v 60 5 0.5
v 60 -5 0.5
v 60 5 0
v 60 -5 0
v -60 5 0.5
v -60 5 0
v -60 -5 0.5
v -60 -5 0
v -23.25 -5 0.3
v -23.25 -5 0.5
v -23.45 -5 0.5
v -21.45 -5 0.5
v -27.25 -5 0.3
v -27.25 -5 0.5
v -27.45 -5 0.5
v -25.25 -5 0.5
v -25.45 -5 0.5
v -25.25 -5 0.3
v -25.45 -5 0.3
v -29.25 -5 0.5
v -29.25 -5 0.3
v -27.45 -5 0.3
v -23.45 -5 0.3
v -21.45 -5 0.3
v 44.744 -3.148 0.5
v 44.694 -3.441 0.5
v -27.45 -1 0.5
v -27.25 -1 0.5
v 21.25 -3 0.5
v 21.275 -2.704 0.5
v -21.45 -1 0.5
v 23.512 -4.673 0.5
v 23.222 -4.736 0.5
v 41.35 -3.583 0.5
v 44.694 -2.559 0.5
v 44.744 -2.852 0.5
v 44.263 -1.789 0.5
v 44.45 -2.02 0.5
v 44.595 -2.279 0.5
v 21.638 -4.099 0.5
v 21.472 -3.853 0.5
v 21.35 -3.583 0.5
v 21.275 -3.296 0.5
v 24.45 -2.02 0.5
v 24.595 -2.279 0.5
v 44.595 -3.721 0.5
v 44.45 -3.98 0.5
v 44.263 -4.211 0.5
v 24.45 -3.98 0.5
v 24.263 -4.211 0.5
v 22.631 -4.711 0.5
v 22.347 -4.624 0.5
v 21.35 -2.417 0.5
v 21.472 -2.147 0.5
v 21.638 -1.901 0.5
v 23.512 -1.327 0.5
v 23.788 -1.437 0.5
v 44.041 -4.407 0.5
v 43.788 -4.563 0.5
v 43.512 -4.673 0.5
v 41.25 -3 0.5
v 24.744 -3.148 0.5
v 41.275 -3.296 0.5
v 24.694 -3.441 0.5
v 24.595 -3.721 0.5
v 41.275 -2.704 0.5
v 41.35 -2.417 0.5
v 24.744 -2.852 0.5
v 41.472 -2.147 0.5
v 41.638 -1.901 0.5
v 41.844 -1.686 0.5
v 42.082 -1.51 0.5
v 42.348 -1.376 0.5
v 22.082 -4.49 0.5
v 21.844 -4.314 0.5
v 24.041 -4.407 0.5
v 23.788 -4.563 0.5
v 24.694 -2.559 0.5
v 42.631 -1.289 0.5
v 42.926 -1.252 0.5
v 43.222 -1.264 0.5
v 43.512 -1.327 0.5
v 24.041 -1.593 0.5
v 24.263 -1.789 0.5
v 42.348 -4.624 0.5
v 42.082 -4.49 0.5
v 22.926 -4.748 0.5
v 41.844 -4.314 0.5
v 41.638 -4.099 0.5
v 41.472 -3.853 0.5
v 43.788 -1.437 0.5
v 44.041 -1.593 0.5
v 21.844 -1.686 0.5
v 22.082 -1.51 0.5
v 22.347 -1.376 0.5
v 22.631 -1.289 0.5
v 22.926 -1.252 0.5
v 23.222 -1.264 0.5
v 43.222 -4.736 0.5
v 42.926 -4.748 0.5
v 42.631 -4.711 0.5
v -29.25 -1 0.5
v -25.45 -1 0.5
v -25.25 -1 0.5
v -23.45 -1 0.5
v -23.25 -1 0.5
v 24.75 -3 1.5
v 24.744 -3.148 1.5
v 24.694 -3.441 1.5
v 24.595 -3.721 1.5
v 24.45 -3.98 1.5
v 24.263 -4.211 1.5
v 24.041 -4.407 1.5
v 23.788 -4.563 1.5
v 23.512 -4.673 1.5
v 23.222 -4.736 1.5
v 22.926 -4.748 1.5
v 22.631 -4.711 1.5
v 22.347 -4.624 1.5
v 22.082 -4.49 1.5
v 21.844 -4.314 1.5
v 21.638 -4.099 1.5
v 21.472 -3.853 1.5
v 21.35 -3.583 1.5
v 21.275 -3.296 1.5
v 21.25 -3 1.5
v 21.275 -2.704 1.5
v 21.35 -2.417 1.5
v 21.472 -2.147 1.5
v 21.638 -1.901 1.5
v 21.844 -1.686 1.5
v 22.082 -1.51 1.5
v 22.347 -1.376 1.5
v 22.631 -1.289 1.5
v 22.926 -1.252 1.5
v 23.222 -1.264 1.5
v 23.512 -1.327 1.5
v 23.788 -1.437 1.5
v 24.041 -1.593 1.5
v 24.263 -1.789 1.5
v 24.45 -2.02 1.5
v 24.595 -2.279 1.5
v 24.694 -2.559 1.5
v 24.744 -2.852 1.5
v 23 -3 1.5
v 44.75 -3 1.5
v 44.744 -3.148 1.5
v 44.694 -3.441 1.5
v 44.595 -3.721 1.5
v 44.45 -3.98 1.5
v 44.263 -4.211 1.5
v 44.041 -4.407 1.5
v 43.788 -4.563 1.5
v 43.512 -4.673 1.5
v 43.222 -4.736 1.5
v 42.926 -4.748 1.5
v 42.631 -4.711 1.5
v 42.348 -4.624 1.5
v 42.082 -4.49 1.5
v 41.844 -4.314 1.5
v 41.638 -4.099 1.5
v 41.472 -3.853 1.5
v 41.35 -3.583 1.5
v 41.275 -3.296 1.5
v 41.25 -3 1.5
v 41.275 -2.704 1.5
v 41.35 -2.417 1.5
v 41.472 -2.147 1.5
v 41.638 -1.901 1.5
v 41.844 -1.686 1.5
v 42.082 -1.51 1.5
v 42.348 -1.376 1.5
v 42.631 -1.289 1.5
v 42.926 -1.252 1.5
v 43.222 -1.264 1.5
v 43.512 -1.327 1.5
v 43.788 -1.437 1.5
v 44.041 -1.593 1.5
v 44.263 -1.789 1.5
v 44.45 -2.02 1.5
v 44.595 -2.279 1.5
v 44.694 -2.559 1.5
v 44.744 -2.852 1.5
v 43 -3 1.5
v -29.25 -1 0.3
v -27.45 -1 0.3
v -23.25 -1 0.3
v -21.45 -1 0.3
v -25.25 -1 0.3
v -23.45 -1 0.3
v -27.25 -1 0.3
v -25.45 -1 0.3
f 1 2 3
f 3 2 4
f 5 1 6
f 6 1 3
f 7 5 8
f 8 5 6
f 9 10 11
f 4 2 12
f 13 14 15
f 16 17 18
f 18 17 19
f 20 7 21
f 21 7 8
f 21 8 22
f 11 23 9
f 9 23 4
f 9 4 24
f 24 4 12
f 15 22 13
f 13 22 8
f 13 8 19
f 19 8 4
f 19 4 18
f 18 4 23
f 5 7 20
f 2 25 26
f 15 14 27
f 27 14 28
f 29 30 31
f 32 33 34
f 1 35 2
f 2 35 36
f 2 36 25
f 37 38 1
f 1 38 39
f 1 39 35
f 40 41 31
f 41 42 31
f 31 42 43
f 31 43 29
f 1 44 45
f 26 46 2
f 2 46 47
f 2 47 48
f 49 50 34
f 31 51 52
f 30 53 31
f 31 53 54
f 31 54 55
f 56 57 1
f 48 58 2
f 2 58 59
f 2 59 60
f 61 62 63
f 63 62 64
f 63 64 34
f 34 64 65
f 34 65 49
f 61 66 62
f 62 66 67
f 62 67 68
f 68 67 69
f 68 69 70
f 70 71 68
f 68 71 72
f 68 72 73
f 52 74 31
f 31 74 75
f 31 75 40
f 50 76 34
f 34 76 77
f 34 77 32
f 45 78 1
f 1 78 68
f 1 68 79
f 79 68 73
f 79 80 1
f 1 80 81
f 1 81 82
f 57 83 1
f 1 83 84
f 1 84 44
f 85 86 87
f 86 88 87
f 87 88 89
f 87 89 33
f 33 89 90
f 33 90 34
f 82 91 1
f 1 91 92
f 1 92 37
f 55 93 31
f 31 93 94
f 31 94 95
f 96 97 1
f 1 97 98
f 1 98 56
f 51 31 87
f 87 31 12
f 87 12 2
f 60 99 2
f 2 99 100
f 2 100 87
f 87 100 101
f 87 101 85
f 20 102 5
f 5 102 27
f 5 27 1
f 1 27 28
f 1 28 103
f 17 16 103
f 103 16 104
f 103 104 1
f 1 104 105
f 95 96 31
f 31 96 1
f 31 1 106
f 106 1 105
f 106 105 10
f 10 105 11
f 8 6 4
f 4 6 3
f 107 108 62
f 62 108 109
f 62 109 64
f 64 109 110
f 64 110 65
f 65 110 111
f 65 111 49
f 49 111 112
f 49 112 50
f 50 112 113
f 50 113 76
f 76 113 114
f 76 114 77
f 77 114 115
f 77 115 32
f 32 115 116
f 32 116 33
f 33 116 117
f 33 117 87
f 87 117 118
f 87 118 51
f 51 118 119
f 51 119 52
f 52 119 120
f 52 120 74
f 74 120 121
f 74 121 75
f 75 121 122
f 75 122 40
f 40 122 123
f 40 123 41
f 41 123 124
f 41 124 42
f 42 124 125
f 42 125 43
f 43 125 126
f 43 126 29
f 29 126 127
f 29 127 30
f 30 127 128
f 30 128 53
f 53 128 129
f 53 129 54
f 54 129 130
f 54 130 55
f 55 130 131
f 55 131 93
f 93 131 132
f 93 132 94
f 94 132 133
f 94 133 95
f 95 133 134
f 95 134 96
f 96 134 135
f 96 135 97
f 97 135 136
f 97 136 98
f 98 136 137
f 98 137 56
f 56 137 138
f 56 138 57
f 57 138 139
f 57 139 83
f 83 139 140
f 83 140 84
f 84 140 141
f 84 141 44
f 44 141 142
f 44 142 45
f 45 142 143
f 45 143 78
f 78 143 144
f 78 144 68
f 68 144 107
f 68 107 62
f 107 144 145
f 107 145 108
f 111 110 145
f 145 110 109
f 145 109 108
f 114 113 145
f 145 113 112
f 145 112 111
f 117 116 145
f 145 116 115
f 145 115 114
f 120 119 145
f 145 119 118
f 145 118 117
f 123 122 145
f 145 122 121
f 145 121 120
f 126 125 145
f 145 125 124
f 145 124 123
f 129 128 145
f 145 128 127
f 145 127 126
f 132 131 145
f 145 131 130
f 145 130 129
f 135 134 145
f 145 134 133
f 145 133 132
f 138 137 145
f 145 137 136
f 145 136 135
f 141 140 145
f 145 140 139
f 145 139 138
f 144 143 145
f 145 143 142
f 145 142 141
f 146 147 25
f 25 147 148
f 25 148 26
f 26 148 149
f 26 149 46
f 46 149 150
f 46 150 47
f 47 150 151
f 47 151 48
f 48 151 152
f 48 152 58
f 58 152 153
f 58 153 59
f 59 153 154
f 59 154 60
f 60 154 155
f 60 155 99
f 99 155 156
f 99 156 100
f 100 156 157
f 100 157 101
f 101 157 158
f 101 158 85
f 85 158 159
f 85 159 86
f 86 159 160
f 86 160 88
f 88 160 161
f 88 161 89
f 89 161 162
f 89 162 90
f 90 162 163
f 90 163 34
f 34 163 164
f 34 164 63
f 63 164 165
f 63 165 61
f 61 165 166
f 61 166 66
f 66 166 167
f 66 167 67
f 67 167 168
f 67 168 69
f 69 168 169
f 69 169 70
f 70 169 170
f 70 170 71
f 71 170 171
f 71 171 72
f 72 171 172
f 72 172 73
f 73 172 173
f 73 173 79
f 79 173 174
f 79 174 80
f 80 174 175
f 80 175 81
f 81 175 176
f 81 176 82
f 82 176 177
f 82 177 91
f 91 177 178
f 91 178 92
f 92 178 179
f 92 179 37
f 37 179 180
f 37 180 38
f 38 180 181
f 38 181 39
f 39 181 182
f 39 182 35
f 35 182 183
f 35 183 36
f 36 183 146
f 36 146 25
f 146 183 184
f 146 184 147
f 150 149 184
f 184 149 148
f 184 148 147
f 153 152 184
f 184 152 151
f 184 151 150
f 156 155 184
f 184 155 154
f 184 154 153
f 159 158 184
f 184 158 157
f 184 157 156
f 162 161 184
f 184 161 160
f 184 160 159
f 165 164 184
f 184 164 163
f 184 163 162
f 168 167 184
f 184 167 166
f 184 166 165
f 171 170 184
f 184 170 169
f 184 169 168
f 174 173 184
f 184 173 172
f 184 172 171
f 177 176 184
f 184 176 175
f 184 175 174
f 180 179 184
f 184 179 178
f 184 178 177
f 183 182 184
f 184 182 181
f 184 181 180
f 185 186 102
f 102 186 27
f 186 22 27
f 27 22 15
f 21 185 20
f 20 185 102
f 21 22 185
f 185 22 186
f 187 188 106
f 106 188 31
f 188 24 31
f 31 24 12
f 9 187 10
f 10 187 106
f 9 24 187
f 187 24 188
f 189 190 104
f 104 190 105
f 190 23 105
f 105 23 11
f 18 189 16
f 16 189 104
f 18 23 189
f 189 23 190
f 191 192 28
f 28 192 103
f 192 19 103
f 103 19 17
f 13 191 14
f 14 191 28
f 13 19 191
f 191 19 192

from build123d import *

# Parameters (mm, degrees)
SKETCH1_W           = 120
SKETCH1_H           = 10
BOSS_EXTRUDE1_DEPTH = 0.5
JACKS_R             = 1.75
BOSS_EXTRUDE2_DEPTH = 1
USB_PORT_W          = 1.8
USB_PORT_H          = 4
CUT_EXTRUDE2_DEPTH  = 0.2
LPATTERN1_COUNT     = 4
LPATTERN1_PITCH     = 2


with BuildPart() as part:
    # Sketch1 → Boss-Extrude1 (new body)
    with BuildSketch(Plane.XY):
        Rectangle(SKETCH1_W, SKETCH1_H)
    extrude(amount=BOSS_EXTRUDE1_DEPTH)

    # Jacks → Boss-Extrude2 (add)
    with BuildSketch(Plane.XY.offset(0.5)):
        with Locations(Location((23, -3, 0), (0, 0, 180))):
            Circle(JACKS_R)
        with Locations(Location((43, -3, 0), (0, 0, 180))):
            Circle(JACKS_R)
    extrude(amount=BOSS_EXTRUDE2_DEPTH)

    # usb port → Cut-Extrude2 (cut)
    with BuildSketch(Plane.XY.offset(0.5)):
        with Locations((-28.35, -3)):
            Rectangle(USB_PORT_W, USB_PORT_H)
    cut_extrude2 = extrude(amount=-CUT_EXTRUDE2_DEPTH, mode=Mode.SUBTRACT)

    # LPattern1: Cut-Extrude2 ×4
    with Locations(*[(i * LPATTERN1_PITCH, 0, 0) for i in range(1, LPATTERN1_COUNT)]):
        add(cut_extrude2, mode=Mode.SUBTRACT)


solid = part.part
